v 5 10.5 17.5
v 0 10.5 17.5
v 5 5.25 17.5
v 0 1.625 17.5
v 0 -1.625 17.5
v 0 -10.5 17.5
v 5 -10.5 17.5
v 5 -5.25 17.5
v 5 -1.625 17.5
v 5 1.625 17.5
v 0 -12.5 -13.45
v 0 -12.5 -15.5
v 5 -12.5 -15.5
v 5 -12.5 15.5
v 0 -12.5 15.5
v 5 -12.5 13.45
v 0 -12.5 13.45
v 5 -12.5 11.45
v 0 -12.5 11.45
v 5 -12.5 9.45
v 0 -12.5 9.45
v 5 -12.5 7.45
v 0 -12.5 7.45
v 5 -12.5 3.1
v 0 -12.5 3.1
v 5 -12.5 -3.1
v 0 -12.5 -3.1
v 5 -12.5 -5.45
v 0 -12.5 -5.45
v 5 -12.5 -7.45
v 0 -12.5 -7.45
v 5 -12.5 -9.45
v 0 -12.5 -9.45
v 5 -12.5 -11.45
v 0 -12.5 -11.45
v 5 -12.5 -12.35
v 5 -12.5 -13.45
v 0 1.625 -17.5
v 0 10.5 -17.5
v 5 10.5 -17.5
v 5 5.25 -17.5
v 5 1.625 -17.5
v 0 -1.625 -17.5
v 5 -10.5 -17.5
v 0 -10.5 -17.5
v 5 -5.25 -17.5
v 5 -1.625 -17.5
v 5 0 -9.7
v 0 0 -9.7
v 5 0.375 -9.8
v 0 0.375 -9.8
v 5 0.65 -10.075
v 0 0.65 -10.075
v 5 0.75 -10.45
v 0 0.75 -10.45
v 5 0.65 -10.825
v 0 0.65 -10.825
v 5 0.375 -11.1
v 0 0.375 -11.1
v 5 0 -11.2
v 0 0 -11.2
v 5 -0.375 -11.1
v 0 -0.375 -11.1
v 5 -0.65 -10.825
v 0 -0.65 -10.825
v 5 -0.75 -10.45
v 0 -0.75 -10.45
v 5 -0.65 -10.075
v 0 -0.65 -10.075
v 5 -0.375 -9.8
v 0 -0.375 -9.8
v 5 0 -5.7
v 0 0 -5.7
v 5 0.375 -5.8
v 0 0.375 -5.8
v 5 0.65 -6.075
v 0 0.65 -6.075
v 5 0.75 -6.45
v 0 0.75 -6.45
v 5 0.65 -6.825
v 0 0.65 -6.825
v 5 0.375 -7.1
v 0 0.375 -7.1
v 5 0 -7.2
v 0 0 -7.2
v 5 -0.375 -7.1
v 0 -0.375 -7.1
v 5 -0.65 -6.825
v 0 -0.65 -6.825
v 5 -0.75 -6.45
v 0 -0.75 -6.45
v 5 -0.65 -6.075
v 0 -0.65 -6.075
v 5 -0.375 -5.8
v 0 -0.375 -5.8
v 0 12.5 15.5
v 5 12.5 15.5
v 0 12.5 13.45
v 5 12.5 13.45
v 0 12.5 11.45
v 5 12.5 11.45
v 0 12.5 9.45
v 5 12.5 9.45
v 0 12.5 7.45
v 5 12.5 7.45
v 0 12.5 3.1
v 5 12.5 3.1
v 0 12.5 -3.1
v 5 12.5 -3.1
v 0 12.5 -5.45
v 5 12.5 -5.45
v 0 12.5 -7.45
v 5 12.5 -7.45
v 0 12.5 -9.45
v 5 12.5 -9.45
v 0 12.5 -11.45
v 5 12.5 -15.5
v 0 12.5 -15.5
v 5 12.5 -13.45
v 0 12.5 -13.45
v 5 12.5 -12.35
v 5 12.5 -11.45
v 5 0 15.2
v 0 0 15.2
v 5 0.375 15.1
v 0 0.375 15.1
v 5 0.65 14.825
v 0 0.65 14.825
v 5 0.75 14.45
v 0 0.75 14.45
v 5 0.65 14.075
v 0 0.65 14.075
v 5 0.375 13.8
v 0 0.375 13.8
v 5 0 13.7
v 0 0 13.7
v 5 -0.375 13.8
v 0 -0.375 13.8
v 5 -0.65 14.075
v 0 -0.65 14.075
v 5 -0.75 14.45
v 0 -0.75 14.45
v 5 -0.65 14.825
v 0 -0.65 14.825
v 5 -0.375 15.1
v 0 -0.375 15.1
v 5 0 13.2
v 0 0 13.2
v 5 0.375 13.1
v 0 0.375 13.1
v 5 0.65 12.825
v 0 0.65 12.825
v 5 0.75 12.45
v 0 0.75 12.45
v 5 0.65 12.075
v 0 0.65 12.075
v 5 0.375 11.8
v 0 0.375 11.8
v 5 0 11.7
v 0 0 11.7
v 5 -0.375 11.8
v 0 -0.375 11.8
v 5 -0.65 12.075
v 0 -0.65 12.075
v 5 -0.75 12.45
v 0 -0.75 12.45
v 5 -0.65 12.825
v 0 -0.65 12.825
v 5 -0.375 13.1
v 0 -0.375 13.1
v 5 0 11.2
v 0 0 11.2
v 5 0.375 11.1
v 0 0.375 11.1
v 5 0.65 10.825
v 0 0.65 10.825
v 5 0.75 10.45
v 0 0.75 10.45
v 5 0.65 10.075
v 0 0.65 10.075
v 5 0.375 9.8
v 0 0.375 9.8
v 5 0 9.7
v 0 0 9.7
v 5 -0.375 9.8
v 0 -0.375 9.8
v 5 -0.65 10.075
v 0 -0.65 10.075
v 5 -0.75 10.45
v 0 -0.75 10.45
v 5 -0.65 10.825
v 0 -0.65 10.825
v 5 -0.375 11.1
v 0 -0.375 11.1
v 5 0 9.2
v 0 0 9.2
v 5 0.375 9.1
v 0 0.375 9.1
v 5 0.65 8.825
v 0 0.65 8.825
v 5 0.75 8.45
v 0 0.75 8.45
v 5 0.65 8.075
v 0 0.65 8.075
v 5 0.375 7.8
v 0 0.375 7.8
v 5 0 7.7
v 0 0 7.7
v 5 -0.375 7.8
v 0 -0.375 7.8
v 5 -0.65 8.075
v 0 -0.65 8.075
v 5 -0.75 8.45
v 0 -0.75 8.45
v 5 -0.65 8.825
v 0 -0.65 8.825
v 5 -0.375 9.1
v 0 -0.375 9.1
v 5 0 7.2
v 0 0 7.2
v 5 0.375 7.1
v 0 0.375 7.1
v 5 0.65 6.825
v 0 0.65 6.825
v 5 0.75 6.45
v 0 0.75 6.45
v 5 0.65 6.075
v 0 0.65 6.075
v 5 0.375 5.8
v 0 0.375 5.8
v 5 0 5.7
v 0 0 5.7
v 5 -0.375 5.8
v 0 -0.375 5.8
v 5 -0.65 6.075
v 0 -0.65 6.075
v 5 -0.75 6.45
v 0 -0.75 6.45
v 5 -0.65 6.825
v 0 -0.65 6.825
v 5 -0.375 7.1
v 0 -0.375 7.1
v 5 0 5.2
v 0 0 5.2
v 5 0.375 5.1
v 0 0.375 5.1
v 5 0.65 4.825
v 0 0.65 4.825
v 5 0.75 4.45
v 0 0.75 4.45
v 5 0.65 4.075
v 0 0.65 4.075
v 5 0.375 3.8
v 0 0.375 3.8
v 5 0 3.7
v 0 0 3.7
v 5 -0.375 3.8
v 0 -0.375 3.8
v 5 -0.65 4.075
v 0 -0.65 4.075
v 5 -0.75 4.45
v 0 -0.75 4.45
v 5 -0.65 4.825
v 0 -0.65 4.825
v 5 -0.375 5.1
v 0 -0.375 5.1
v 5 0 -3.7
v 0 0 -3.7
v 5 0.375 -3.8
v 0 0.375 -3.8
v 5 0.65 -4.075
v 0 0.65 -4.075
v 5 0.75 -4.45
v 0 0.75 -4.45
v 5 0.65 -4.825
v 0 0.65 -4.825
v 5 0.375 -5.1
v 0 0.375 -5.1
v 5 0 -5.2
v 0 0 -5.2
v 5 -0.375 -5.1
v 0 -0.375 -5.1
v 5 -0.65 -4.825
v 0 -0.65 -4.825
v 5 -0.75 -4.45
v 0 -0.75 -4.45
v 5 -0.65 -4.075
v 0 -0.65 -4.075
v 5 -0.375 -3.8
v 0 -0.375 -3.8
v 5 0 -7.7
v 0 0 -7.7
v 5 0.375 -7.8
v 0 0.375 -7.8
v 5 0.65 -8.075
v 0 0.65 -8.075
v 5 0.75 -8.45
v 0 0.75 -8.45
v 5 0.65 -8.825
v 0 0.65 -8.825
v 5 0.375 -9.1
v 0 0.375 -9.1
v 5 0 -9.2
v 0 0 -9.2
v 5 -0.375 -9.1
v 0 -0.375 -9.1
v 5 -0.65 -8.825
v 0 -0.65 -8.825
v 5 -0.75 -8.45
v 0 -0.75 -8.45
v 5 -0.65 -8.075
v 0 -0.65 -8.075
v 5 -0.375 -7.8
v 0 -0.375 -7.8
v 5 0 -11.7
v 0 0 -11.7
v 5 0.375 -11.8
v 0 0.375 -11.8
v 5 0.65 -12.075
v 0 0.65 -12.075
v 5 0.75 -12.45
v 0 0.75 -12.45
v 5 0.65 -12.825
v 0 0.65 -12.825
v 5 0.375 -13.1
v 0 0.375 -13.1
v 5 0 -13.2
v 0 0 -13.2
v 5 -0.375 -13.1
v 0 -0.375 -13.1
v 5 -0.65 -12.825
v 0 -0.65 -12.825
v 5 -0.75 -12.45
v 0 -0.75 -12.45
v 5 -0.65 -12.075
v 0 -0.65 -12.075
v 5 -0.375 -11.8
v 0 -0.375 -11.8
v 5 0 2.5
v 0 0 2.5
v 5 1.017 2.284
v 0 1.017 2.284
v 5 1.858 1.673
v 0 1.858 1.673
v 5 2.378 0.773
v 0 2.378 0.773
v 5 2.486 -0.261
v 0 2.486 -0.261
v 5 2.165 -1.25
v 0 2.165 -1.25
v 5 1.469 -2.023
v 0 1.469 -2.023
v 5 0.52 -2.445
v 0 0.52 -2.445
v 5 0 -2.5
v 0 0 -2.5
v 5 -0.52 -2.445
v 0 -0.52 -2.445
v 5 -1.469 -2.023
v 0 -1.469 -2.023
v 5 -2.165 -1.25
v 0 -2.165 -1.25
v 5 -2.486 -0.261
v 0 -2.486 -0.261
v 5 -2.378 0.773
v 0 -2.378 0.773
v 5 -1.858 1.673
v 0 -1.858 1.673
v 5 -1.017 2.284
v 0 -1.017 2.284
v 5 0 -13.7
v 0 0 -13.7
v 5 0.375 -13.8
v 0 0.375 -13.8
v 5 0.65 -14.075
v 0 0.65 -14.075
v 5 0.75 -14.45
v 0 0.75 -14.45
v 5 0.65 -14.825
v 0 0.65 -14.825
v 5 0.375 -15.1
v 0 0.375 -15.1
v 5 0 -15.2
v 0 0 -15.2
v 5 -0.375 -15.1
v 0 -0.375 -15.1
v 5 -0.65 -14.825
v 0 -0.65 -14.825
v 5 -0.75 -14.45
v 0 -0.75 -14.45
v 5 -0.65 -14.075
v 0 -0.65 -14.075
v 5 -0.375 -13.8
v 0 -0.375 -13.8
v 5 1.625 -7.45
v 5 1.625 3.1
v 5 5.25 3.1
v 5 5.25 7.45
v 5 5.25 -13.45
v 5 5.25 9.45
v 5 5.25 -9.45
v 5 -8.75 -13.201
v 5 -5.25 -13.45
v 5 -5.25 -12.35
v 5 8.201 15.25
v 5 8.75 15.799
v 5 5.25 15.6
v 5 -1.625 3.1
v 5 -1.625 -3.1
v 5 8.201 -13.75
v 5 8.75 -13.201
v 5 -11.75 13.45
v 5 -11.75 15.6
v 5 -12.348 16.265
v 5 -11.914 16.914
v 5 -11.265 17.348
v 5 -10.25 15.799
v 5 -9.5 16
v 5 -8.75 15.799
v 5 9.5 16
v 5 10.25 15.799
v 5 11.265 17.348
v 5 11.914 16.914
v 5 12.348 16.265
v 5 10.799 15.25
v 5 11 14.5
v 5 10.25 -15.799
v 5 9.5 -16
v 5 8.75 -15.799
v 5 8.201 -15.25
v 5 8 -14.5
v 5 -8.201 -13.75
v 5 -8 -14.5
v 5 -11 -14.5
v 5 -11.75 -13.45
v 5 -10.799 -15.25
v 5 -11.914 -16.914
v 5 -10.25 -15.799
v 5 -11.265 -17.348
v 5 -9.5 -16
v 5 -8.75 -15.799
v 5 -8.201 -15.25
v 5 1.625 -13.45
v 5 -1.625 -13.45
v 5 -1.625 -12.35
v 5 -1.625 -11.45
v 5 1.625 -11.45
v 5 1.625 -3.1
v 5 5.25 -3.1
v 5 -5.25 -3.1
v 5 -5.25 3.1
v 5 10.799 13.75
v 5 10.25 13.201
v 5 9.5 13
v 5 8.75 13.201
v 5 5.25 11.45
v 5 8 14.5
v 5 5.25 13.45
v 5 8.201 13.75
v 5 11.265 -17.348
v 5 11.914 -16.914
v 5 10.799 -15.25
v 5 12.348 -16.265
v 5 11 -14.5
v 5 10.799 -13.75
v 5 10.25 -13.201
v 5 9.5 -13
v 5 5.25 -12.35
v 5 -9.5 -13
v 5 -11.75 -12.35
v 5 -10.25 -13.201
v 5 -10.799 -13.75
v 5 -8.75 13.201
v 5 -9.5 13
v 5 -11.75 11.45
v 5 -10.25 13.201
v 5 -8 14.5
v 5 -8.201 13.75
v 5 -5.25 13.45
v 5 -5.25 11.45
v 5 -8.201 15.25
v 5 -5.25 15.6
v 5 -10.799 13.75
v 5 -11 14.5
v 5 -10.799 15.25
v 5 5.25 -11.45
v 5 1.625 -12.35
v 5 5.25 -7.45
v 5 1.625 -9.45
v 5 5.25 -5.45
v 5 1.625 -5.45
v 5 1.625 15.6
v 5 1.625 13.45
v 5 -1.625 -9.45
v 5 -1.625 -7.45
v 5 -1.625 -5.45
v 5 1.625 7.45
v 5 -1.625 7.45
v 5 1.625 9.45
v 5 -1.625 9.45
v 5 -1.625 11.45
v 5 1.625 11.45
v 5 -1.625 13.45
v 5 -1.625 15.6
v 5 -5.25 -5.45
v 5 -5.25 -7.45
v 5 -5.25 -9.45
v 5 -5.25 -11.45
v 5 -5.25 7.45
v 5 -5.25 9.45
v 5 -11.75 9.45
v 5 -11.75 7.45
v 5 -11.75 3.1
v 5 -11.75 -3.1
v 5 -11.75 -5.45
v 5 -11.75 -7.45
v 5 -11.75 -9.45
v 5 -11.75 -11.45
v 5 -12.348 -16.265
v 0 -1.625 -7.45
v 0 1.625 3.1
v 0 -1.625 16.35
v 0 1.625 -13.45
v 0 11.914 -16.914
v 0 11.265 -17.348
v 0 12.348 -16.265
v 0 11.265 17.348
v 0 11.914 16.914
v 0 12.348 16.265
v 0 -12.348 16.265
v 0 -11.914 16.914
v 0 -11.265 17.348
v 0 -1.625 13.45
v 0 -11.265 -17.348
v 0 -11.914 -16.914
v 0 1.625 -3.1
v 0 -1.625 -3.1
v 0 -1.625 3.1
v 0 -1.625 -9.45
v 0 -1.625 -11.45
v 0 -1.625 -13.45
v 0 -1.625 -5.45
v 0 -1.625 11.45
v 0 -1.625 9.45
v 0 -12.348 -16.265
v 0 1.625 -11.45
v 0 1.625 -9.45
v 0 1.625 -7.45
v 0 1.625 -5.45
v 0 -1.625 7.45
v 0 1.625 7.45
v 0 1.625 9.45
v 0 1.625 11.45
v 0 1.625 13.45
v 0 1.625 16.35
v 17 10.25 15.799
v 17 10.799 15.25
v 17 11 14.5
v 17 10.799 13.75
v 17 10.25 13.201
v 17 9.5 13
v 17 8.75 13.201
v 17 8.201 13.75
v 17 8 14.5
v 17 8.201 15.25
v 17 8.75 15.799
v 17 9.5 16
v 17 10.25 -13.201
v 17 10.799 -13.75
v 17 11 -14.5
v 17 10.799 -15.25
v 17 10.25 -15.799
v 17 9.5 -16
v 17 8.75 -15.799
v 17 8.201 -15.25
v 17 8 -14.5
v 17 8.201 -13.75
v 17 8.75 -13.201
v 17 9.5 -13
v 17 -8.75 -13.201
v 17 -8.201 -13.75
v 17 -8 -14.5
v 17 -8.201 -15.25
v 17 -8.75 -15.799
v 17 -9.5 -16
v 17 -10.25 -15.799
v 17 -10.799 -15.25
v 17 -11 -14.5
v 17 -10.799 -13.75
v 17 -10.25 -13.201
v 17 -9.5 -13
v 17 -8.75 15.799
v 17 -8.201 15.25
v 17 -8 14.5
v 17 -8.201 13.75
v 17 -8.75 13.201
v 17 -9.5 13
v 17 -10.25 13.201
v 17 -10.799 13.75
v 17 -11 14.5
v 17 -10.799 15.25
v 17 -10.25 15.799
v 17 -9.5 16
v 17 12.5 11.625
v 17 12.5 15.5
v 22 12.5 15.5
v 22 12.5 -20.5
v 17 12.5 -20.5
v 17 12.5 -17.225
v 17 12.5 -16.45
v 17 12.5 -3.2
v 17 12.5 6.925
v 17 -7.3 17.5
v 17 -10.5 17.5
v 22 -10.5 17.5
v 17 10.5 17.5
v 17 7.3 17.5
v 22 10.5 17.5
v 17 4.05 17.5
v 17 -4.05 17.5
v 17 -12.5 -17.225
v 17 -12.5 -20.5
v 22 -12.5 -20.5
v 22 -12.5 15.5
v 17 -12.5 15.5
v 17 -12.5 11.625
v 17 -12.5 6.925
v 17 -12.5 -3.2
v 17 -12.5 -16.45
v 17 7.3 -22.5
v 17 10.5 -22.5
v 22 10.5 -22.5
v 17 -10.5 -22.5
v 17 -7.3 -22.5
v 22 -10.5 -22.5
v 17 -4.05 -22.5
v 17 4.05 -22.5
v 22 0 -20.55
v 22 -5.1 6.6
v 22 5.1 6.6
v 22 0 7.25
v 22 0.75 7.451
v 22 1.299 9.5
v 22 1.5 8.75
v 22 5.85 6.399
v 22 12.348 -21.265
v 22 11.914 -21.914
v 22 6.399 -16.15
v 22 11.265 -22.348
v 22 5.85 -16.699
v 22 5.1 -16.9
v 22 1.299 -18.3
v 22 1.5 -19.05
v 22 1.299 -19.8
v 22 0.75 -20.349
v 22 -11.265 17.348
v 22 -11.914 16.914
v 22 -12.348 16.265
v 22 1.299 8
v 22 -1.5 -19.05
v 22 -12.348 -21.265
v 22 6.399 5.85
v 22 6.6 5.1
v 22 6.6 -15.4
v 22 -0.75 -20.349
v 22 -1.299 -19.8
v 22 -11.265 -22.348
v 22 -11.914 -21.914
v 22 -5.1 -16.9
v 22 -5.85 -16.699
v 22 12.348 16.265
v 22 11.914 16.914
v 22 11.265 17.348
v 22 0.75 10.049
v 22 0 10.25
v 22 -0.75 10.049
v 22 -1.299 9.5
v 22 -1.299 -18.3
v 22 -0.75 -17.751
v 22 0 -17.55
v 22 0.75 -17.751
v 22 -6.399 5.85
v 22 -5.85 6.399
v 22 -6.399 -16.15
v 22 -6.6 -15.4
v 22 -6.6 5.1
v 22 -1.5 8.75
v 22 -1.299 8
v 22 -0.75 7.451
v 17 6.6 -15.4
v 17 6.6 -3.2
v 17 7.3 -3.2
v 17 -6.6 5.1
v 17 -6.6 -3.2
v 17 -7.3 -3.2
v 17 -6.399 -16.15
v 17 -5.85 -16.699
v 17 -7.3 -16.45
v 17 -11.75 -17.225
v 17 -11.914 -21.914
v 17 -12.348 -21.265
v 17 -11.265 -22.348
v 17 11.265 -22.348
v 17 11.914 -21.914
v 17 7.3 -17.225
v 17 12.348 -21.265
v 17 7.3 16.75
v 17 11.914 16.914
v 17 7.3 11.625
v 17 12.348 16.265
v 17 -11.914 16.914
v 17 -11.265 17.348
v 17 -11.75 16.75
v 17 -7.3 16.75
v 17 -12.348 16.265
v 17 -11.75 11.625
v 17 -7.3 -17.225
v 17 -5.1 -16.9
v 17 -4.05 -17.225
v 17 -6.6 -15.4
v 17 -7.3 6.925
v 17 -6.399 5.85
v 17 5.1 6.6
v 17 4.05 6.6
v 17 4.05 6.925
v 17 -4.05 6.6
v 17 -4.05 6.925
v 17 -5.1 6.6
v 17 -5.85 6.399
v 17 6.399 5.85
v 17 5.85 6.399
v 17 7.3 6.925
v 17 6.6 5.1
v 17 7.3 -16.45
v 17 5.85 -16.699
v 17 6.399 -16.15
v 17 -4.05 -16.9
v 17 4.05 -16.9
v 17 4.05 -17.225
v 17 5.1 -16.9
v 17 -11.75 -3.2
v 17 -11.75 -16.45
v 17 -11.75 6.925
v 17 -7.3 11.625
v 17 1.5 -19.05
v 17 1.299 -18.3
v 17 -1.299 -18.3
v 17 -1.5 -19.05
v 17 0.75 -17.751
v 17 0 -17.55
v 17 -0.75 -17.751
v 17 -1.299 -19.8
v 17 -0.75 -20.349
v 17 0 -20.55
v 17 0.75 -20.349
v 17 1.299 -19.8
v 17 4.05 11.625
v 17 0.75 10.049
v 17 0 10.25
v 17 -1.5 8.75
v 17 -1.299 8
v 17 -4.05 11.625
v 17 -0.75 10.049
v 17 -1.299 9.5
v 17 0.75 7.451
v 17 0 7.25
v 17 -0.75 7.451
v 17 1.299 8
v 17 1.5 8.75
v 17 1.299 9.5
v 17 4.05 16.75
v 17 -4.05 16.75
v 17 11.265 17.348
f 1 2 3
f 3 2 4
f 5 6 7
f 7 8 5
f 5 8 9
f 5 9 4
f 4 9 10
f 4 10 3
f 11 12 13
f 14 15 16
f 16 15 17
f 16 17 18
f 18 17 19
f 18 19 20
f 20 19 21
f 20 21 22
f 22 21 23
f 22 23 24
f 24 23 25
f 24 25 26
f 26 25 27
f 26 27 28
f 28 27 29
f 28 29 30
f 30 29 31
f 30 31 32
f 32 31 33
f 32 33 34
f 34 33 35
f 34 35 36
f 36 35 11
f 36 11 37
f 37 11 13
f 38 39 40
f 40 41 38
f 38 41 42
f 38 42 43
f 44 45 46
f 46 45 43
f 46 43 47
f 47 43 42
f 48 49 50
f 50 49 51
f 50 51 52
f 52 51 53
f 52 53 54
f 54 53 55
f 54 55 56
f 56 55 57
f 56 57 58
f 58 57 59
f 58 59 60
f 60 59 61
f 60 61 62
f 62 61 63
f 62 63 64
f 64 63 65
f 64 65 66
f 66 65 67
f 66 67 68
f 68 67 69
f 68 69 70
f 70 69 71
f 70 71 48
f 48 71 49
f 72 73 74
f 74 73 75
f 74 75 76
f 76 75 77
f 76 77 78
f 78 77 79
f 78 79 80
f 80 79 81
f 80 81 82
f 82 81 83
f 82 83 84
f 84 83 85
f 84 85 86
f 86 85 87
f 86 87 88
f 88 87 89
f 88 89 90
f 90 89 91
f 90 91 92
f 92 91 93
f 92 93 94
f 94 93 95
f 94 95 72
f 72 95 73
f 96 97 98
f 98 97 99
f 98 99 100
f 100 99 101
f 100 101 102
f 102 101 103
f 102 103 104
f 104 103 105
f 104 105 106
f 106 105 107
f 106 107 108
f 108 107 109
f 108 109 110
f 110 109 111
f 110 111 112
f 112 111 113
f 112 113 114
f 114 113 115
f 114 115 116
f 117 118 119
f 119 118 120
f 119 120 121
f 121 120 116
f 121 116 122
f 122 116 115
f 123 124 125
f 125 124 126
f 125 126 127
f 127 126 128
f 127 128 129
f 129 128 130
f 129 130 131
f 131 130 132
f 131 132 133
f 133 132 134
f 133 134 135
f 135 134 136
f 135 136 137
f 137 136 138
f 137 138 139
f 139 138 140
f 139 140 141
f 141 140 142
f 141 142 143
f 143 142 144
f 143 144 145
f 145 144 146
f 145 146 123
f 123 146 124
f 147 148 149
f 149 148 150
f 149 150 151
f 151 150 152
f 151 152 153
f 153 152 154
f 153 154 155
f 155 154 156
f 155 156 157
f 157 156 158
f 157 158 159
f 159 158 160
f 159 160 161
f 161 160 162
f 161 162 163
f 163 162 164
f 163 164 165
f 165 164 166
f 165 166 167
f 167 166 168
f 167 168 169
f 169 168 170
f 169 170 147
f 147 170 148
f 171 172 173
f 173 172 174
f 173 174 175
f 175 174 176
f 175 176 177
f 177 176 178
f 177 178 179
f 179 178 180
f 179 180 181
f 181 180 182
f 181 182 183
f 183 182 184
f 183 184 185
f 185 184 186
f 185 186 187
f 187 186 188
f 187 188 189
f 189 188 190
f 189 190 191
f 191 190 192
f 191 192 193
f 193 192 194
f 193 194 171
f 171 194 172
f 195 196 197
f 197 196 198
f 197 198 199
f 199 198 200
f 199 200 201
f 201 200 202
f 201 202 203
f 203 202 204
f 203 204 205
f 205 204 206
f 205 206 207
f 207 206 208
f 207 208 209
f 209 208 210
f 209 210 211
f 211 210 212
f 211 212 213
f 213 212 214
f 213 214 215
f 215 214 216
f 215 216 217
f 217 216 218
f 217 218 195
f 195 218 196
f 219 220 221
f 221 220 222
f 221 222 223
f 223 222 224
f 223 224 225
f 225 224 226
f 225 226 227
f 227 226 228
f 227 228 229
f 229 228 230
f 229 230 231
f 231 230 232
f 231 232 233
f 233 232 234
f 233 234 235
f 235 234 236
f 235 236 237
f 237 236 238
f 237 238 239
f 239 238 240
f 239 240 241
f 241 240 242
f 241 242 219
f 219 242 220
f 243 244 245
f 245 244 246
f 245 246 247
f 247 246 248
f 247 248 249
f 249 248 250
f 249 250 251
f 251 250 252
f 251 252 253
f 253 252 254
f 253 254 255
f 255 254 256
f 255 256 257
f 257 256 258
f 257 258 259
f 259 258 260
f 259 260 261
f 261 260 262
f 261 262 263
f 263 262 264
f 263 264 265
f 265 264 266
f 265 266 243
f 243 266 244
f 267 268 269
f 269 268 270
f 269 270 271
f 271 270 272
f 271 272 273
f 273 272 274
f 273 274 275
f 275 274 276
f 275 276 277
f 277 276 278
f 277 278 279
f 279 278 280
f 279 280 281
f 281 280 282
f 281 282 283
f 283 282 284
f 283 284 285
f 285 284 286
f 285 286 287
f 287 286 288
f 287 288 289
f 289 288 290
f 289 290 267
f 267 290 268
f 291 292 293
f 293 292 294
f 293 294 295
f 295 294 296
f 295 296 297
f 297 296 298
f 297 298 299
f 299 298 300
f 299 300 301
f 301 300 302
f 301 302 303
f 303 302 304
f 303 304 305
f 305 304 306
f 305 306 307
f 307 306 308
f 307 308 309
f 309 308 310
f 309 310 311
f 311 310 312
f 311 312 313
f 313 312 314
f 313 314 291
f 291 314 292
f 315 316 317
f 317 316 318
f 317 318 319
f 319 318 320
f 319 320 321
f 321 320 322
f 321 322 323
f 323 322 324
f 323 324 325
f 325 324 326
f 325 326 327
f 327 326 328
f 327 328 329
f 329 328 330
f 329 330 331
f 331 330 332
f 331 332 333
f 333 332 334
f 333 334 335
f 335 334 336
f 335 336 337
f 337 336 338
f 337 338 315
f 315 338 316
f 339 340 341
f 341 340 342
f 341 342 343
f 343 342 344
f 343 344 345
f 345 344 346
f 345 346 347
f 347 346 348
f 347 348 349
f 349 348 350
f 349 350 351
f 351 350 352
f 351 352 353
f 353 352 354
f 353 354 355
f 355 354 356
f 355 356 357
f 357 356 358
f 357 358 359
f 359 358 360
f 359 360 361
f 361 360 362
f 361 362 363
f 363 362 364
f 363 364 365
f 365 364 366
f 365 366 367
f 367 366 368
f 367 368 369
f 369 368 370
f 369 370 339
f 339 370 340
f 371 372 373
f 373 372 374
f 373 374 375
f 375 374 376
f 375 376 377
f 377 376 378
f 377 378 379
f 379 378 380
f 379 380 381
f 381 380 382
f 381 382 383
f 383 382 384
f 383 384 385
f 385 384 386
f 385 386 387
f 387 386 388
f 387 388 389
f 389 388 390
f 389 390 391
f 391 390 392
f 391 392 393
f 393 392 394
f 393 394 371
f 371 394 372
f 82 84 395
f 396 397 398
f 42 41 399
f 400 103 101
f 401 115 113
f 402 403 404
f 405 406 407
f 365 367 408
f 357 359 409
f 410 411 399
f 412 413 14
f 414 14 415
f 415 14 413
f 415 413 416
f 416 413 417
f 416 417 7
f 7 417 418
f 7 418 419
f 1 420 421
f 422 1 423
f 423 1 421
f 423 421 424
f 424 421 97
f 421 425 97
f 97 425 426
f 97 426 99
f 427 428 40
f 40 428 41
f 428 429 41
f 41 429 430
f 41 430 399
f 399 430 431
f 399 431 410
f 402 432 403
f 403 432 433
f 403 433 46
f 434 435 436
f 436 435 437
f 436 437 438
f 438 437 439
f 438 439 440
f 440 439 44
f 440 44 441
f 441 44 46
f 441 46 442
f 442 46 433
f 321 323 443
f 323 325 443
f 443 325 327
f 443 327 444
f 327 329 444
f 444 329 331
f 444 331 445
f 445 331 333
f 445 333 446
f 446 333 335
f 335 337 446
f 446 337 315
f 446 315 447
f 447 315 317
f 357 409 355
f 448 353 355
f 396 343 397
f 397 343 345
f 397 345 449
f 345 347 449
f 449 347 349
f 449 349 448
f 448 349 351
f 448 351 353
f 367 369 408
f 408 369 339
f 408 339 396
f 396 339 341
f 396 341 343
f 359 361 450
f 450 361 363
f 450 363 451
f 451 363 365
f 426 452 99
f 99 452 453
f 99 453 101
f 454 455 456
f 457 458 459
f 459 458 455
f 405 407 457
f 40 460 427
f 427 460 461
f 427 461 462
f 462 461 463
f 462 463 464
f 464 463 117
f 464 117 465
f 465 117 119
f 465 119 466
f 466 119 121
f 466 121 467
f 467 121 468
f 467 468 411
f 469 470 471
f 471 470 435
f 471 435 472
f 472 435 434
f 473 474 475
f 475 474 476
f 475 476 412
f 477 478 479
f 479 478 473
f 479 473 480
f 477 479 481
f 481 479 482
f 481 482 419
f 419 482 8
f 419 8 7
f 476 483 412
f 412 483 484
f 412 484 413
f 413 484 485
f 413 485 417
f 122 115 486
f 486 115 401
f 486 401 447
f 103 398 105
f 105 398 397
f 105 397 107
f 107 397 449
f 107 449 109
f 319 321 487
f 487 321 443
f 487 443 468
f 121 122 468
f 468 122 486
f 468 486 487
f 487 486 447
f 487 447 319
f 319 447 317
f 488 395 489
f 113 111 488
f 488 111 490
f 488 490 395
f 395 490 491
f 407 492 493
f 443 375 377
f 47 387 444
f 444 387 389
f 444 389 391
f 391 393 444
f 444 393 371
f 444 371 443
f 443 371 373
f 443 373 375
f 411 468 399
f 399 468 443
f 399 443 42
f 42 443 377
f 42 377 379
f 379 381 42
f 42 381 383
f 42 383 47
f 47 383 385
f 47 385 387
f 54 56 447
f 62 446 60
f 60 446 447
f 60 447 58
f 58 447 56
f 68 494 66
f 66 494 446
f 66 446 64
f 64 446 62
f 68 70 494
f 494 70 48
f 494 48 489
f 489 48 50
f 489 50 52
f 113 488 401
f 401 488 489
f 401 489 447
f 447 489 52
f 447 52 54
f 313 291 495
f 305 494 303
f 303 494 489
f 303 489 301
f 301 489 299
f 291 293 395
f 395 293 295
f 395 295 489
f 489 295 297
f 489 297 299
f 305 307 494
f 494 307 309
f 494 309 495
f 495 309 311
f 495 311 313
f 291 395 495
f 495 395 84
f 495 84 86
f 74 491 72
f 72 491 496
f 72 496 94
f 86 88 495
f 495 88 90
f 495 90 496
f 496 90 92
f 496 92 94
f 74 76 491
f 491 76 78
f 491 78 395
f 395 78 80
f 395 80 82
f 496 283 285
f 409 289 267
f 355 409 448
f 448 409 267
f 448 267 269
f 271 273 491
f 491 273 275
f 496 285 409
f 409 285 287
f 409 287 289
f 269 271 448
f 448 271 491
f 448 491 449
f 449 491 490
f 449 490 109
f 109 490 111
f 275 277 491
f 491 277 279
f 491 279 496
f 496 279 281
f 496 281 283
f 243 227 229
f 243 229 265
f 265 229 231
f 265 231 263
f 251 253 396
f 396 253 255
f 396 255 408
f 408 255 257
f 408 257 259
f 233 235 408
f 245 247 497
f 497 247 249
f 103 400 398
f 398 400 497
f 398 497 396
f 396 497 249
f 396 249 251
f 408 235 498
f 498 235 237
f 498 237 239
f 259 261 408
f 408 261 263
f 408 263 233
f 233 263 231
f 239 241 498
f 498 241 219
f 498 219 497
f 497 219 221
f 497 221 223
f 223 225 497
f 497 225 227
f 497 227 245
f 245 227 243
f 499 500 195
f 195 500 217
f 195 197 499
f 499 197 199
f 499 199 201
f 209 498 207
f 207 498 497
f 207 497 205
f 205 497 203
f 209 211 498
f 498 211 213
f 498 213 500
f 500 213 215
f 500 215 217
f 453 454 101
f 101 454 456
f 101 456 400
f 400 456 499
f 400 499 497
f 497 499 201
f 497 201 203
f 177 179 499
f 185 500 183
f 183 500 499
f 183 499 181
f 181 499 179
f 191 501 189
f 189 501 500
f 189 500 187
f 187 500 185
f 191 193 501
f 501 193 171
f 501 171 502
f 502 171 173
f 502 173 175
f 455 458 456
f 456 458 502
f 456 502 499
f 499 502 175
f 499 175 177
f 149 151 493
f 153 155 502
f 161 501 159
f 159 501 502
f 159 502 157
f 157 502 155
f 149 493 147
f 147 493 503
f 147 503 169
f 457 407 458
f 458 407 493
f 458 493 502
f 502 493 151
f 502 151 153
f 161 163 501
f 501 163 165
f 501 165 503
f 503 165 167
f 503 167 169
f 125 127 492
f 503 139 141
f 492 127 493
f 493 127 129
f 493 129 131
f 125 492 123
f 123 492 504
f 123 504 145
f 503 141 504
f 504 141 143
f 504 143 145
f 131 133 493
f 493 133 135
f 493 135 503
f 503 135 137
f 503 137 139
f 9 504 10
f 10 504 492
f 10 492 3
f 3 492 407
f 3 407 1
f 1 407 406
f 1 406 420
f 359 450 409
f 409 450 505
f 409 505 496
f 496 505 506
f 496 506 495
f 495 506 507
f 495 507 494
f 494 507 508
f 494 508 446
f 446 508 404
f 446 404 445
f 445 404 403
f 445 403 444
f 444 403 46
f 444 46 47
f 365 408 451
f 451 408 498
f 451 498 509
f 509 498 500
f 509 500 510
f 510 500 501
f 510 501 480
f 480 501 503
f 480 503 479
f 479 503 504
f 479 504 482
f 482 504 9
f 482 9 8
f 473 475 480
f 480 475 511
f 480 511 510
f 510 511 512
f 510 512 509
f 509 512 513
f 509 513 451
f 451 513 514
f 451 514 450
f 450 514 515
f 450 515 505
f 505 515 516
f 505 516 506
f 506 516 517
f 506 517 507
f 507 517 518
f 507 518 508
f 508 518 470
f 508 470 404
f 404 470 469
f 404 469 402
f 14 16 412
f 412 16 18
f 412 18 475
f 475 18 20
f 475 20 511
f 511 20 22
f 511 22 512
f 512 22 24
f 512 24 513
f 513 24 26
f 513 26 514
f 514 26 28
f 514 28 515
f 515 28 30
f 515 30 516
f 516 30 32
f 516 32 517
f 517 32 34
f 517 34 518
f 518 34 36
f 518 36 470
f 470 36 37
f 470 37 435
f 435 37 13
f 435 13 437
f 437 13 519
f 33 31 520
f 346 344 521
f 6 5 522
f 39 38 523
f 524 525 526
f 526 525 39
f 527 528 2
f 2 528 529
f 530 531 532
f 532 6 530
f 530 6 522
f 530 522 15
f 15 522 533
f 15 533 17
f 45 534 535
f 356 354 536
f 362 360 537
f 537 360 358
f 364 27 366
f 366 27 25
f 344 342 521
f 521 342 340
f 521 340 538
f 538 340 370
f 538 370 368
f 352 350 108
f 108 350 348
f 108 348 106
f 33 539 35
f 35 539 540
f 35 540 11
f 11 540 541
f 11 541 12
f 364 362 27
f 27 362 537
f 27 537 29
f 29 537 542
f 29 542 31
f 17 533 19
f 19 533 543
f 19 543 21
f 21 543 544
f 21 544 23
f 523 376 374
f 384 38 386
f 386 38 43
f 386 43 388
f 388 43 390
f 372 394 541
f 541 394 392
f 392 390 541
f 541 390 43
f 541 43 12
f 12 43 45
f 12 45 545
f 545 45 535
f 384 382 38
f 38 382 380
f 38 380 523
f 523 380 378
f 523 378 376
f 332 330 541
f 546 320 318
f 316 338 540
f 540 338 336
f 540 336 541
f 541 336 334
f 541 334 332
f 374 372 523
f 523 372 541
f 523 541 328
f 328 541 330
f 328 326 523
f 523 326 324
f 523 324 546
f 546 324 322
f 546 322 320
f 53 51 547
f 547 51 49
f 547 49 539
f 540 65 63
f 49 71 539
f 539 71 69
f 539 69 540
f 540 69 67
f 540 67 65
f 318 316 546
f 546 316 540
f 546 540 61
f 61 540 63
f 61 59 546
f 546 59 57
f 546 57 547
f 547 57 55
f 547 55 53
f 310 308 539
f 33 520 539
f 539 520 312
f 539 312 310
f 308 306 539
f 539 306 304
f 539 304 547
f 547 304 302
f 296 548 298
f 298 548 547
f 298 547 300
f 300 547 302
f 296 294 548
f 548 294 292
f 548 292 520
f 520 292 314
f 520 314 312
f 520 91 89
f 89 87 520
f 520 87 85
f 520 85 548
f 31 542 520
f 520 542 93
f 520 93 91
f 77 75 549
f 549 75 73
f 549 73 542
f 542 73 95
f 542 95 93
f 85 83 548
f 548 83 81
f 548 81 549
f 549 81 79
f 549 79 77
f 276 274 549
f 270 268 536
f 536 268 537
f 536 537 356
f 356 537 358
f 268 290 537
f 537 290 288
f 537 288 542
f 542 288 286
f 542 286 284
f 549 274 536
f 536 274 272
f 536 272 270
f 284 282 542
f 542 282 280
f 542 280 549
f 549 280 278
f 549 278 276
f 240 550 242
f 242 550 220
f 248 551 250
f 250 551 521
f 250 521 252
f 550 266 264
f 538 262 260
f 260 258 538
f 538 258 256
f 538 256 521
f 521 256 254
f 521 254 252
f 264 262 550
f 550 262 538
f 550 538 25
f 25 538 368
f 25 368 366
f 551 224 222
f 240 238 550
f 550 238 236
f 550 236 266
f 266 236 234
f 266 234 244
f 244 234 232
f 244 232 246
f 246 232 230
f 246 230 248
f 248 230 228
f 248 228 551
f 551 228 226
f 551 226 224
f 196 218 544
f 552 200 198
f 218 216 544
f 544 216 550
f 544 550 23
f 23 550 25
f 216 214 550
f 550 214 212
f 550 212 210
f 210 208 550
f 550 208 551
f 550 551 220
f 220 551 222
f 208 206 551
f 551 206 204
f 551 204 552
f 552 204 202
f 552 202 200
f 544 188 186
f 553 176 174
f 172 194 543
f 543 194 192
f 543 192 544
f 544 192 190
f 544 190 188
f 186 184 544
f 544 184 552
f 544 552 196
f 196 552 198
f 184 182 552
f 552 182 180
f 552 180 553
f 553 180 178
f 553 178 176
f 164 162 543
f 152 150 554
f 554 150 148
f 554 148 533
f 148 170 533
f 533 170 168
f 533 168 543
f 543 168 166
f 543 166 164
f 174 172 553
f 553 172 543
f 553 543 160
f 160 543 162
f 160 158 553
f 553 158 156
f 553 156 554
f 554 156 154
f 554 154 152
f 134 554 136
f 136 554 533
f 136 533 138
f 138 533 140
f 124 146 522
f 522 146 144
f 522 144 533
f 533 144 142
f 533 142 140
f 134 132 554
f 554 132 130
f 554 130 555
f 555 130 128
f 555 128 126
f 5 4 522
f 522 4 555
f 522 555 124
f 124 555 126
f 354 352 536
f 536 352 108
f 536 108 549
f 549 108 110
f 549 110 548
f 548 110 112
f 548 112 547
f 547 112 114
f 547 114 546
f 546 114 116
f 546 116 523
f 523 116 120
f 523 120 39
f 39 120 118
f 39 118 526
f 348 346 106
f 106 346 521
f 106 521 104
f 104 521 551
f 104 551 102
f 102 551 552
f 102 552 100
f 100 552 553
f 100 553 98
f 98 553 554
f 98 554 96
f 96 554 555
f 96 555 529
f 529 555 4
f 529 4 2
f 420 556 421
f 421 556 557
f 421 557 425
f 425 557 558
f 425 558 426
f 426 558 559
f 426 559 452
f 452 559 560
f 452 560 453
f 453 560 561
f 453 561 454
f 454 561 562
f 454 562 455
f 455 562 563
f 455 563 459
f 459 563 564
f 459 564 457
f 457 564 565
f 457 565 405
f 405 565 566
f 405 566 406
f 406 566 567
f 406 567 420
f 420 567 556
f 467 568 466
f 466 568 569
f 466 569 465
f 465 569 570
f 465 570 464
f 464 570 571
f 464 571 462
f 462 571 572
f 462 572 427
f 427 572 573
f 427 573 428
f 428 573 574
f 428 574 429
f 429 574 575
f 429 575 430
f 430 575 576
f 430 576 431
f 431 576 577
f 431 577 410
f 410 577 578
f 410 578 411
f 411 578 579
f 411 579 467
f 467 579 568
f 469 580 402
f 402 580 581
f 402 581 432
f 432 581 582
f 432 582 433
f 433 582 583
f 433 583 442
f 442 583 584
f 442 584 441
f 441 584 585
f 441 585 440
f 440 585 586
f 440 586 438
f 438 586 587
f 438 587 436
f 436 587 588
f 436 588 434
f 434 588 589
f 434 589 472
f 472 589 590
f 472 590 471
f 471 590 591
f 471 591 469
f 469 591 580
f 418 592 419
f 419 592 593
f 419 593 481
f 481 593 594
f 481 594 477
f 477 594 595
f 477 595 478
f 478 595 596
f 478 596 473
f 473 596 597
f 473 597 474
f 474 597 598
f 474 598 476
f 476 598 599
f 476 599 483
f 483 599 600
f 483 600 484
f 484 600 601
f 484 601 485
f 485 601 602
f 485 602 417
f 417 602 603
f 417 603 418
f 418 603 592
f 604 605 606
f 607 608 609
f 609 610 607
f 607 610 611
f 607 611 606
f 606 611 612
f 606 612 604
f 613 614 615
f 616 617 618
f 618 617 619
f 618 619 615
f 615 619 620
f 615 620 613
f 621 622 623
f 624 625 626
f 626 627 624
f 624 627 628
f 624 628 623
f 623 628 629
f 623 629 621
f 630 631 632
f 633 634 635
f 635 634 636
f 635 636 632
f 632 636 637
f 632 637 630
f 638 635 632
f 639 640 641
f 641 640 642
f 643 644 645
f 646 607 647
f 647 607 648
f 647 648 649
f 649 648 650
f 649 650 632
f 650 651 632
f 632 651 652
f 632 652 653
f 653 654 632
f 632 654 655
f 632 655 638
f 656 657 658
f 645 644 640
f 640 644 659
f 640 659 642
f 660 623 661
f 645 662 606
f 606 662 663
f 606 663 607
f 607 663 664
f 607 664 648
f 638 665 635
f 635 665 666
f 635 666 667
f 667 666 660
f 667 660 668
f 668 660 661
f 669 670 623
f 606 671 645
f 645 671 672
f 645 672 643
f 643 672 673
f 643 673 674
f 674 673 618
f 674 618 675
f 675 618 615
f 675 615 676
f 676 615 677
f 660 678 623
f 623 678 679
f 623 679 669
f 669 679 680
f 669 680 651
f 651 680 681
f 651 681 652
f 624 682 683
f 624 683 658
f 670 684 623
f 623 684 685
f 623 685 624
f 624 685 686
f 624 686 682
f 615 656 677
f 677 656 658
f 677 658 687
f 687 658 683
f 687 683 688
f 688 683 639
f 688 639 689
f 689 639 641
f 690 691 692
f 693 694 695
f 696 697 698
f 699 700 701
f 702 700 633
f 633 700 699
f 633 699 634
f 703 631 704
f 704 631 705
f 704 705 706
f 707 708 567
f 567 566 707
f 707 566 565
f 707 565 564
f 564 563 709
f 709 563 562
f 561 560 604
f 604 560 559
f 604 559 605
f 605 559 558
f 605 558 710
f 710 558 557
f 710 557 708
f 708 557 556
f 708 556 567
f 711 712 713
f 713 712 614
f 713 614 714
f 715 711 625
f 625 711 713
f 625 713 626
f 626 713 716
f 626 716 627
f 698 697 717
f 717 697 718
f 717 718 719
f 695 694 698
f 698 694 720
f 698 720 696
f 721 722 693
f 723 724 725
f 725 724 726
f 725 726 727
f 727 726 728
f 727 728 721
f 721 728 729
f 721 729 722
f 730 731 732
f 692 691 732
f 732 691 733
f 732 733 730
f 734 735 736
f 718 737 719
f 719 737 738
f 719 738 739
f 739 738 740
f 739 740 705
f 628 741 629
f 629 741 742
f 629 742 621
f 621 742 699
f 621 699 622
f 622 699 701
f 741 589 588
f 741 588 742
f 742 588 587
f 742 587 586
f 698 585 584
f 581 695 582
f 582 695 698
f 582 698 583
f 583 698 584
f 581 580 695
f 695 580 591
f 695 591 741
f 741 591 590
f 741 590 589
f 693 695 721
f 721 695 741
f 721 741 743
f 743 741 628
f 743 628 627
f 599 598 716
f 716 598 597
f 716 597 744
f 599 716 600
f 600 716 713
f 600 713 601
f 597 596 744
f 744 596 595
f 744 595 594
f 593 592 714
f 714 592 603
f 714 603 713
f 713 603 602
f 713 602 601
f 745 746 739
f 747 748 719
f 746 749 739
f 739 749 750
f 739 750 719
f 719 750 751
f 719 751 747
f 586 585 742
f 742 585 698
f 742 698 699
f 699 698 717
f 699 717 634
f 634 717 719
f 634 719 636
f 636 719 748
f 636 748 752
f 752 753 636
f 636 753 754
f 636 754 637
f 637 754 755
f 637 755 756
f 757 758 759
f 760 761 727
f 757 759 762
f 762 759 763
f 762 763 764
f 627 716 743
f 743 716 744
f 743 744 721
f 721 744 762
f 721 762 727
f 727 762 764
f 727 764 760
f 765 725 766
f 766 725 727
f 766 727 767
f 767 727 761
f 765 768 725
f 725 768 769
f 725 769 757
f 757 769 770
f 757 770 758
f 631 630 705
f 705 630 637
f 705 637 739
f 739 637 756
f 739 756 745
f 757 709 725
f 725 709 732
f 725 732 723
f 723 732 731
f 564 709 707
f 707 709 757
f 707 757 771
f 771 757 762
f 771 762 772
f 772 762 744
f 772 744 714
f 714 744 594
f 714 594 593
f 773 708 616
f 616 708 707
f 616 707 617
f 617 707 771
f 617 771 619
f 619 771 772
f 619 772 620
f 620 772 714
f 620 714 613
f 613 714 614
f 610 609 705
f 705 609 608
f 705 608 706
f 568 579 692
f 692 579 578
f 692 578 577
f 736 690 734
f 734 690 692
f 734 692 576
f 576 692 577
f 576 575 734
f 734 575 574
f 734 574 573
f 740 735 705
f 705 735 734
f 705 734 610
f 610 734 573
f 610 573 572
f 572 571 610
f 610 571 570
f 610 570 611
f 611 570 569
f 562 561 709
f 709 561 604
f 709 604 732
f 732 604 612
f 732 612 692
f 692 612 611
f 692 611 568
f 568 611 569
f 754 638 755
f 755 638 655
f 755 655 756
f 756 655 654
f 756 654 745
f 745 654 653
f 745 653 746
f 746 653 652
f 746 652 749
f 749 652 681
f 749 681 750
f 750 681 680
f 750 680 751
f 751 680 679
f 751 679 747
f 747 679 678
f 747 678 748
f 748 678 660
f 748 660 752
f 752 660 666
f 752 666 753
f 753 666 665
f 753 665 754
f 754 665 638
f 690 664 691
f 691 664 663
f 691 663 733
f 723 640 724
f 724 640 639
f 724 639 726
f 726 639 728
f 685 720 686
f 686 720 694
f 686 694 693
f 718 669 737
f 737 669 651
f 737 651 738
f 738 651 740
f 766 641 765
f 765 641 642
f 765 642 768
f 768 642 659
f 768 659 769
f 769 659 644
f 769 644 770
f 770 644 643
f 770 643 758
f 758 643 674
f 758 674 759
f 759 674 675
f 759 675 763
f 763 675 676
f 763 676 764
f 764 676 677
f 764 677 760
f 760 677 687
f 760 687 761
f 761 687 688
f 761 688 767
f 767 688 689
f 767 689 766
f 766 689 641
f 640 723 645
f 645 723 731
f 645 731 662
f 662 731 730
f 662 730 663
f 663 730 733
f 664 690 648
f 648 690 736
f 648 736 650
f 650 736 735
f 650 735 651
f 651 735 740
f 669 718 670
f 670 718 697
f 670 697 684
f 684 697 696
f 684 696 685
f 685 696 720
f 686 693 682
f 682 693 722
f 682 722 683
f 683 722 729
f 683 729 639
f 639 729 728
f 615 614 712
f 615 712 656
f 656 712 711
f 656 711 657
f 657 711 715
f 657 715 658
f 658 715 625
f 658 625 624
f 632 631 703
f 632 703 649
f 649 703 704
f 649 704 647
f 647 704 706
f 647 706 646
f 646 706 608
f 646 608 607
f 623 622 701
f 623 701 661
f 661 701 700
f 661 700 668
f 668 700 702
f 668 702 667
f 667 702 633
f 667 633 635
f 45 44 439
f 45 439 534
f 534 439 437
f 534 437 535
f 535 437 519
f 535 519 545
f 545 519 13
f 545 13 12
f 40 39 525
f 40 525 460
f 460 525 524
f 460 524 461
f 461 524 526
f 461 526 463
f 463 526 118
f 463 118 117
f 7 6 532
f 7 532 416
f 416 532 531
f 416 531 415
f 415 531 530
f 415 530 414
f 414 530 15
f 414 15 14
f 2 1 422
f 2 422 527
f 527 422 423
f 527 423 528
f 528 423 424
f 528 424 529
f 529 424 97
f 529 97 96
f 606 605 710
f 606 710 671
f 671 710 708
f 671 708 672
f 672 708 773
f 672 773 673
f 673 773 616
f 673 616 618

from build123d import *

# Parameters (mm, degrees)
SKETCH1_W           = 35
SKETCH1_H           = 25
SKETCH1_R           = 0.75
SKETCH1_R_2         = 2.5
BOSS_EXTRUDE1_DEPTH = 5
SKETCH5_R           = 1.5
BOSS_EXTRUDE3_DEPTH = 12
SKETCH4_W           = 25
SKETCH4_H           = 40
BOSS_EXTRUDE2_DEPTH = 5
CUT_EXTRUDE2_REACH  = 55.819
SKETCH3_R           = 1.5
SKETCH3_W           = 13.2
SKETCH3_H           = 23.5
FILLET5_R           = 1.5
FILLET6_R           = 2


with BuildPart() as part:
    # Sketch1 → Boss-Extrude1 (new body)
    with BuildSketch(Plane(origin=(0, 0, 0), x_dir=(0, 0, -1), z_dir=(1, 0, 0))):
        Rectangle(SKETCH1_W, SKETCH1_H)
        with Locations((-14.45, 0)):
            Circle(SKETCH1_R, mode=Mode.SUBTRACT)
        with Locations((-12.45, 0)):
            Circle(SKETCH1_R, mode=Mode.SUBTRACT)
        with Locations((-10.45, 0)):
            Circle(SKETCH1_R, mode=Mode.SUBTRACT)
        with Locations((-8.45, 0)):
            Circle(SKETCH1_R, mode=Mode.SUBTRACT)
        with Locations((-6.45, 0)):
            Circle(SKETCH1_R, mode=Mode.SUBTRACT)
        with Locations((-4.45, 0)):
            Circle(SKETCH1_R, mode=Mode.SUBTRACT)
        Circle(SKETCH1_R_2, mode=Mode.SUBTRACT)
        with Locations((4.45, 0)):
            Circle(SKETCH1_R, mode=Mode.SUBTRACT)
        with Locations((6.45, 0)):
            Circle(SKETCH1_R, mode=Mode.SUBTRACT)
        with Locations((8.45, 0)):
            Circle(SKETCH1_R, mode=Mode.SUBTRACT)
        with Locations((10.45, 0)):
            Circle(SKETCH1_R, mode=Mode.SUBTRACT)
        with Locations((12.45, 0)):
            Circle(SKETCH1_R, mode=Mode.SUBTRACT)
        with Locations((14.45, 0)):
            Circle(SKETCH1_R, mode=Mode.SUBTRACT)
    extrude(amount=BOSS_EXTRUDE1_DEPTH)

    # Sketch5 → Boss-Extrude3 (add)
    with BuildSketch(Plane(origin=(5, 0, 0), x_dir=(0, 0, -1), z_dir=(1, 0, 0))):
        with Locations((-14.5, 9.5)):
            Circle(SKETCH5_R)
        with Locations((14.5, 9.5)):
            Circle(SKETCH5_R)
        with Locations((14.5, -9.5)):
            Circle(SKETCH5_R)
        with Locations((-14.5, -9.5)):
            Circle(SKETCH5_R)
    extrude(amount=BOSS_EXTRUDE3_DEPTH)

    # Sketch4 → Boss-Extrude2 (add)
    with BuildSketch(Plane(origin=(17, 17.5, 0), x_dir=(0, -1, 0), z_dir=(1, 0, 0))):
        with Locations((17.5, 2.5)):
            Rectangle(SKETCH4_W, SKETCH4_H)
    extrude(amount=BOSS_EXTRUDE2_DEPTH)

    # Sketch3 → Cut-Extrude2 (cut, up to next)
    with BuildSketch(Plane(origin=(22, 0, -30), x_dir=(0, 1, 0), z_dir=(1, 0, 0)), mode=Mode.PRIVATE) as cut_extrude2_sk1:
        with Locations((0, 38.75)):
            Circle(SKETCH3_R)
    cut_extrude2_tool1 = extrude(cut_extrude2_sk1.sketch, amount=-CUT_EXTRUDE2_REACH, mode=Mode.PRIVATE) & part.part
    # Sketch3 → Cut-Extrude2 (cut, up to next)
    with BuildSketch(Plane(origin=(22, 0, -30), x_dir=(0, 1, 0), z_dir=(1, 0, 0)), mode=Mode.PRIVATE) as cut_extrude2_sk2:
        with Locations((0, 10.95)):
            Circle(SKETCH3_R)
    cut_extrude2_tool2 = extrude(cut_extrude2_sk2.sketch, amount=-CUT_EXTRUDE2_REACH, mode=Mode.PRIVATE) & part.part
    # Sketch3 → Cut-Extrude2 (cut, up to next)
    with BuildSketch(Plane(origin=(22, 0, -30), x_dir=(0, 1, 0), z_dir=(1, 0, 0)), mode=Mode.PRIVATE) as cut_extrude2_sk3:
        with Locations((0, 24.85)):
            Rectangle(SKETCH3_W, SKETCH3_H)
    cut_extrude2_tool3 = extrude(cut_extrude2_sk3.sketch, amount=-CUT_EXTRUDE2_REACH, mode=Mode.PRIVATE) & part.part
    add(cut_extrude2_tool1.solids().sort_by_distance((22, 0, 8.75))[0], mode=Mode.SUBTRACT)
    add(cut_extrude2_tool2.solids().sort_by_distance((22, 0, -19.05))[0], mode=Mode.SUBTRACT)
    add(cut_extrude2_tool3.solids().sort_by_distance((22, 0, -5.15))[0], mode=Mode.SUBTRACT)

    # Fillet5
    fillet5_edges = [part.edges().sort_by_distance(p)[0] for p in [
        (19.5, 6.6, 6.6),
        (19.5, 6.6, -16.9),
        (19.5, -6.6, -16.9),
        (19.5, -6.6, 6.6),
    ]]
    fillet(fillet5_edges, radius=FILLET5_R)

    # Fillet6
    fillet6_edges = [part.edges().sort_by_distance(p)[0] for p in [
        (19.5, -12.5, 17.5),
        (19.5, 12.5, -22.5),
        (19.5, -12.5, -22.5),
        (2.5, -12.5, -17.5),
        (2.5, 12.5, -17.5),
        (2.5, -12.5, 17.5),
        (2.5, 12.5, 17.5),
        (19.5, 12.5, 17.5),
    ]]
    fillet(fillet6_edges, radius=FILLET6_R)


solid = part.part
